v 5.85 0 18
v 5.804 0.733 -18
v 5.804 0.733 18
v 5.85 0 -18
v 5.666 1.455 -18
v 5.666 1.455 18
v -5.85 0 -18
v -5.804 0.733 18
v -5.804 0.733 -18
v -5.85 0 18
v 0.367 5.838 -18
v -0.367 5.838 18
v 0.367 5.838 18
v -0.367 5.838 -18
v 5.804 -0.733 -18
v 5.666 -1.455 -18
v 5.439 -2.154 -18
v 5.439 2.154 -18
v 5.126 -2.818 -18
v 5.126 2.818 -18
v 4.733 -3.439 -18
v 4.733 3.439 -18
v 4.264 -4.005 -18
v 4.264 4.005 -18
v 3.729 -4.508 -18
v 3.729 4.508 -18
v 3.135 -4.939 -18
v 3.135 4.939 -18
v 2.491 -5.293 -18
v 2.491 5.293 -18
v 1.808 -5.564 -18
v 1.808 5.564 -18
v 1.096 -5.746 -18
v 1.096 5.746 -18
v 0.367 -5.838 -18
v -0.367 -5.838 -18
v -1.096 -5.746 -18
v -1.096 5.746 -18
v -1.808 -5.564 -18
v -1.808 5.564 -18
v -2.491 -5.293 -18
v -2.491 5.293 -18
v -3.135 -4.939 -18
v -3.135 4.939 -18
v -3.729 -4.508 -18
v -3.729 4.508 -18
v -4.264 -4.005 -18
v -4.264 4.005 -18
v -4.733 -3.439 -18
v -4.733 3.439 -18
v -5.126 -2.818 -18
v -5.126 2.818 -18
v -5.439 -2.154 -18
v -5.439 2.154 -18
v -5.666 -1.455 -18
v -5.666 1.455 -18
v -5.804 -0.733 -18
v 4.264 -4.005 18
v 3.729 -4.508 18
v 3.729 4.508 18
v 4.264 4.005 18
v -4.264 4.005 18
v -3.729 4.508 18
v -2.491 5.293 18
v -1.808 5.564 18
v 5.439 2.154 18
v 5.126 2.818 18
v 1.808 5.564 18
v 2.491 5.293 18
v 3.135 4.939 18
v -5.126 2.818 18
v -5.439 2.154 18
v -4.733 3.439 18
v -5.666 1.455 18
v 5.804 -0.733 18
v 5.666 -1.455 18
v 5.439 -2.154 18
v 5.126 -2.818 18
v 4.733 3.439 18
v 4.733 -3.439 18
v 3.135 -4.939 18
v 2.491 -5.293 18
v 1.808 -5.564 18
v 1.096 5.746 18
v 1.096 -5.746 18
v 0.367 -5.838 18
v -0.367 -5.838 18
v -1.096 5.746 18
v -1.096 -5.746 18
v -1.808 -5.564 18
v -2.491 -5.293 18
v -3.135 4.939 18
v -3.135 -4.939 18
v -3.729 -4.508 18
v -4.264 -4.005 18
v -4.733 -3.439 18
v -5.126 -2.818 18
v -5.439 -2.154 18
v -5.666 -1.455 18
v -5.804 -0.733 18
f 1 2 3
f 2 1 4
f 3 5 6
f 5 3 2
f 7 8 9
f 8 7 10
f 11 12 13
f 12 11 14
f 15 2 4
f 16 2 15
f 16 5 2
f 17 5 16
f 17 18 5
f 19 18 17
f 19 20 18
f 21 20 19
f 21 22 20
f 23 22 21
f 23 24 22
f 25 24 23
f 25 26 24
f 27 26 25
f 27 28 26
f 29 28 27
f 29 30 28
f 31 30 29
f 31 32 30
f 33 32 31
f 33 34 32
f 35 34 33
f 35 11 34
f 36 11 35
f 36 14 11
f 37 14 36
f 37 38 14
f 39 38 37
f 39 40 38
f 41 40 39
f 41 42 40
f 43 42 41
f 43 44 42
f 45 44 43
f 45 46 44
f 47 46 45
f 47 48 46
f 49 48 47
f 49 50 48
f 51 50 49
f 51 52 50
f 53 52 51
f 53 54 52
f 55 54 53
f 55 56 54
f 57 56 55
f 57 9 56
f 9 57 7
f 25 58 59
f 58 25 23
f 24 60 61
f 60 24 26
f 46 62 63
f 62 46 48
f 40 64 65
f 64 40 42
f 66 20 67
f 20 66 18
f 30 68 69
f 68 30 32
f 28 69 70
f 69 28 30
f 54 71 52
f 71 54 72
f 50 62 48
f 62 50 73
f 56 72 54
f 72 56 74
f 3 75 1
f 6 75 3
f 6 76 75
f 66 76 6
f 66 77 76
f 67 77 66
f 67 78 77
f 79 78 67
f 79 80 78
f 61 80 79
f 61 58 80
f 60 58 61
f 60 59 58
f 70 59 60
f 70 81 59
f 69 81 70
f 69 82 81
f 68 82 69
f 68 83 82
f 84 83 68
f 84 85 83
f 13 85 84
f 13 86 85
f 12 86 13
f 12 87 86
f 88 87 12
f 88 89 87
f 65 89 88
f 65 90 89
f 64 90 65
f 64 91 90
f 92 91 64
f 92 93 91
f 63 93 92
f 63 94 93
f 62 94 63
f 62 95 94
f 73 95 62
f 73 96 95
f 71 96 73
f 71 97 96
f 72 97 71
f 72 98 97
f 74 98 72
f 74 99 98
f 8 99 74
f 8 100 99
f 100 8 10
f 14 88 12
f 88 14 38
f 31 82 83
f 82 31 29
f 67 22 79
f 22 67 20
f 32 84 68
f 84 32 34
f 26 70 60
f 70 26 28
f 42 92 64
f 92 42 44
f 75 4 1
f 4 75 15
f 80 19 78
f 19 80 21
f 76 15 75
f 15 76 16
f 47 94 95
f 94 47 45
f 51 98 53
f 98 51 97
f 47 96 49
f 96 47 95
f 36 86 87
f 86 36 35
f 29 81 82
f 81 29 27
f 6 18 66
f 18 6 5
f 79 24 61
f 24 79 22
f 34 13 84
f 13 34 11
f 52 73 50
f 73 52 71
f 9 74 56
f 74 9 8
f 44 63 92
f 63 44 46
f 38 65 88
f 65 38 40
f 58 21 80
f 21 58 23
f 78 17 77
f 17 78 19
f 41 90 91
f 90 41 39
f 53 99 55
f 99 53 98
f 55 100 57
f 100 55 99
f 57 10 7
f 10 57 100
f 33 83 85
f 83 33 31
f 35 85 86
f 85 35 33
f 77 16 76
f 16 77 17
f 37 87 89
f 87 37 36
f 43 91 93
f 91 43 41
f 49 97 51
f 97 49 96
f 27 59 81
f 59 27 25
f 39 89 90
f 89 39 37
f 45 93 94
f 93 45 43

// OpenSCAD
$fn = 50;


difference() {
	union() {
		translate(v = [0, 0, -18.0000000000]) {
			cylinder(h = 36, r = 5.8500000000);
		}
	}
	union() {
		translate(v = [0, 0, -100.0000000000]) {
			cylinder(h = 200, r = 0);
		}
	}
}
